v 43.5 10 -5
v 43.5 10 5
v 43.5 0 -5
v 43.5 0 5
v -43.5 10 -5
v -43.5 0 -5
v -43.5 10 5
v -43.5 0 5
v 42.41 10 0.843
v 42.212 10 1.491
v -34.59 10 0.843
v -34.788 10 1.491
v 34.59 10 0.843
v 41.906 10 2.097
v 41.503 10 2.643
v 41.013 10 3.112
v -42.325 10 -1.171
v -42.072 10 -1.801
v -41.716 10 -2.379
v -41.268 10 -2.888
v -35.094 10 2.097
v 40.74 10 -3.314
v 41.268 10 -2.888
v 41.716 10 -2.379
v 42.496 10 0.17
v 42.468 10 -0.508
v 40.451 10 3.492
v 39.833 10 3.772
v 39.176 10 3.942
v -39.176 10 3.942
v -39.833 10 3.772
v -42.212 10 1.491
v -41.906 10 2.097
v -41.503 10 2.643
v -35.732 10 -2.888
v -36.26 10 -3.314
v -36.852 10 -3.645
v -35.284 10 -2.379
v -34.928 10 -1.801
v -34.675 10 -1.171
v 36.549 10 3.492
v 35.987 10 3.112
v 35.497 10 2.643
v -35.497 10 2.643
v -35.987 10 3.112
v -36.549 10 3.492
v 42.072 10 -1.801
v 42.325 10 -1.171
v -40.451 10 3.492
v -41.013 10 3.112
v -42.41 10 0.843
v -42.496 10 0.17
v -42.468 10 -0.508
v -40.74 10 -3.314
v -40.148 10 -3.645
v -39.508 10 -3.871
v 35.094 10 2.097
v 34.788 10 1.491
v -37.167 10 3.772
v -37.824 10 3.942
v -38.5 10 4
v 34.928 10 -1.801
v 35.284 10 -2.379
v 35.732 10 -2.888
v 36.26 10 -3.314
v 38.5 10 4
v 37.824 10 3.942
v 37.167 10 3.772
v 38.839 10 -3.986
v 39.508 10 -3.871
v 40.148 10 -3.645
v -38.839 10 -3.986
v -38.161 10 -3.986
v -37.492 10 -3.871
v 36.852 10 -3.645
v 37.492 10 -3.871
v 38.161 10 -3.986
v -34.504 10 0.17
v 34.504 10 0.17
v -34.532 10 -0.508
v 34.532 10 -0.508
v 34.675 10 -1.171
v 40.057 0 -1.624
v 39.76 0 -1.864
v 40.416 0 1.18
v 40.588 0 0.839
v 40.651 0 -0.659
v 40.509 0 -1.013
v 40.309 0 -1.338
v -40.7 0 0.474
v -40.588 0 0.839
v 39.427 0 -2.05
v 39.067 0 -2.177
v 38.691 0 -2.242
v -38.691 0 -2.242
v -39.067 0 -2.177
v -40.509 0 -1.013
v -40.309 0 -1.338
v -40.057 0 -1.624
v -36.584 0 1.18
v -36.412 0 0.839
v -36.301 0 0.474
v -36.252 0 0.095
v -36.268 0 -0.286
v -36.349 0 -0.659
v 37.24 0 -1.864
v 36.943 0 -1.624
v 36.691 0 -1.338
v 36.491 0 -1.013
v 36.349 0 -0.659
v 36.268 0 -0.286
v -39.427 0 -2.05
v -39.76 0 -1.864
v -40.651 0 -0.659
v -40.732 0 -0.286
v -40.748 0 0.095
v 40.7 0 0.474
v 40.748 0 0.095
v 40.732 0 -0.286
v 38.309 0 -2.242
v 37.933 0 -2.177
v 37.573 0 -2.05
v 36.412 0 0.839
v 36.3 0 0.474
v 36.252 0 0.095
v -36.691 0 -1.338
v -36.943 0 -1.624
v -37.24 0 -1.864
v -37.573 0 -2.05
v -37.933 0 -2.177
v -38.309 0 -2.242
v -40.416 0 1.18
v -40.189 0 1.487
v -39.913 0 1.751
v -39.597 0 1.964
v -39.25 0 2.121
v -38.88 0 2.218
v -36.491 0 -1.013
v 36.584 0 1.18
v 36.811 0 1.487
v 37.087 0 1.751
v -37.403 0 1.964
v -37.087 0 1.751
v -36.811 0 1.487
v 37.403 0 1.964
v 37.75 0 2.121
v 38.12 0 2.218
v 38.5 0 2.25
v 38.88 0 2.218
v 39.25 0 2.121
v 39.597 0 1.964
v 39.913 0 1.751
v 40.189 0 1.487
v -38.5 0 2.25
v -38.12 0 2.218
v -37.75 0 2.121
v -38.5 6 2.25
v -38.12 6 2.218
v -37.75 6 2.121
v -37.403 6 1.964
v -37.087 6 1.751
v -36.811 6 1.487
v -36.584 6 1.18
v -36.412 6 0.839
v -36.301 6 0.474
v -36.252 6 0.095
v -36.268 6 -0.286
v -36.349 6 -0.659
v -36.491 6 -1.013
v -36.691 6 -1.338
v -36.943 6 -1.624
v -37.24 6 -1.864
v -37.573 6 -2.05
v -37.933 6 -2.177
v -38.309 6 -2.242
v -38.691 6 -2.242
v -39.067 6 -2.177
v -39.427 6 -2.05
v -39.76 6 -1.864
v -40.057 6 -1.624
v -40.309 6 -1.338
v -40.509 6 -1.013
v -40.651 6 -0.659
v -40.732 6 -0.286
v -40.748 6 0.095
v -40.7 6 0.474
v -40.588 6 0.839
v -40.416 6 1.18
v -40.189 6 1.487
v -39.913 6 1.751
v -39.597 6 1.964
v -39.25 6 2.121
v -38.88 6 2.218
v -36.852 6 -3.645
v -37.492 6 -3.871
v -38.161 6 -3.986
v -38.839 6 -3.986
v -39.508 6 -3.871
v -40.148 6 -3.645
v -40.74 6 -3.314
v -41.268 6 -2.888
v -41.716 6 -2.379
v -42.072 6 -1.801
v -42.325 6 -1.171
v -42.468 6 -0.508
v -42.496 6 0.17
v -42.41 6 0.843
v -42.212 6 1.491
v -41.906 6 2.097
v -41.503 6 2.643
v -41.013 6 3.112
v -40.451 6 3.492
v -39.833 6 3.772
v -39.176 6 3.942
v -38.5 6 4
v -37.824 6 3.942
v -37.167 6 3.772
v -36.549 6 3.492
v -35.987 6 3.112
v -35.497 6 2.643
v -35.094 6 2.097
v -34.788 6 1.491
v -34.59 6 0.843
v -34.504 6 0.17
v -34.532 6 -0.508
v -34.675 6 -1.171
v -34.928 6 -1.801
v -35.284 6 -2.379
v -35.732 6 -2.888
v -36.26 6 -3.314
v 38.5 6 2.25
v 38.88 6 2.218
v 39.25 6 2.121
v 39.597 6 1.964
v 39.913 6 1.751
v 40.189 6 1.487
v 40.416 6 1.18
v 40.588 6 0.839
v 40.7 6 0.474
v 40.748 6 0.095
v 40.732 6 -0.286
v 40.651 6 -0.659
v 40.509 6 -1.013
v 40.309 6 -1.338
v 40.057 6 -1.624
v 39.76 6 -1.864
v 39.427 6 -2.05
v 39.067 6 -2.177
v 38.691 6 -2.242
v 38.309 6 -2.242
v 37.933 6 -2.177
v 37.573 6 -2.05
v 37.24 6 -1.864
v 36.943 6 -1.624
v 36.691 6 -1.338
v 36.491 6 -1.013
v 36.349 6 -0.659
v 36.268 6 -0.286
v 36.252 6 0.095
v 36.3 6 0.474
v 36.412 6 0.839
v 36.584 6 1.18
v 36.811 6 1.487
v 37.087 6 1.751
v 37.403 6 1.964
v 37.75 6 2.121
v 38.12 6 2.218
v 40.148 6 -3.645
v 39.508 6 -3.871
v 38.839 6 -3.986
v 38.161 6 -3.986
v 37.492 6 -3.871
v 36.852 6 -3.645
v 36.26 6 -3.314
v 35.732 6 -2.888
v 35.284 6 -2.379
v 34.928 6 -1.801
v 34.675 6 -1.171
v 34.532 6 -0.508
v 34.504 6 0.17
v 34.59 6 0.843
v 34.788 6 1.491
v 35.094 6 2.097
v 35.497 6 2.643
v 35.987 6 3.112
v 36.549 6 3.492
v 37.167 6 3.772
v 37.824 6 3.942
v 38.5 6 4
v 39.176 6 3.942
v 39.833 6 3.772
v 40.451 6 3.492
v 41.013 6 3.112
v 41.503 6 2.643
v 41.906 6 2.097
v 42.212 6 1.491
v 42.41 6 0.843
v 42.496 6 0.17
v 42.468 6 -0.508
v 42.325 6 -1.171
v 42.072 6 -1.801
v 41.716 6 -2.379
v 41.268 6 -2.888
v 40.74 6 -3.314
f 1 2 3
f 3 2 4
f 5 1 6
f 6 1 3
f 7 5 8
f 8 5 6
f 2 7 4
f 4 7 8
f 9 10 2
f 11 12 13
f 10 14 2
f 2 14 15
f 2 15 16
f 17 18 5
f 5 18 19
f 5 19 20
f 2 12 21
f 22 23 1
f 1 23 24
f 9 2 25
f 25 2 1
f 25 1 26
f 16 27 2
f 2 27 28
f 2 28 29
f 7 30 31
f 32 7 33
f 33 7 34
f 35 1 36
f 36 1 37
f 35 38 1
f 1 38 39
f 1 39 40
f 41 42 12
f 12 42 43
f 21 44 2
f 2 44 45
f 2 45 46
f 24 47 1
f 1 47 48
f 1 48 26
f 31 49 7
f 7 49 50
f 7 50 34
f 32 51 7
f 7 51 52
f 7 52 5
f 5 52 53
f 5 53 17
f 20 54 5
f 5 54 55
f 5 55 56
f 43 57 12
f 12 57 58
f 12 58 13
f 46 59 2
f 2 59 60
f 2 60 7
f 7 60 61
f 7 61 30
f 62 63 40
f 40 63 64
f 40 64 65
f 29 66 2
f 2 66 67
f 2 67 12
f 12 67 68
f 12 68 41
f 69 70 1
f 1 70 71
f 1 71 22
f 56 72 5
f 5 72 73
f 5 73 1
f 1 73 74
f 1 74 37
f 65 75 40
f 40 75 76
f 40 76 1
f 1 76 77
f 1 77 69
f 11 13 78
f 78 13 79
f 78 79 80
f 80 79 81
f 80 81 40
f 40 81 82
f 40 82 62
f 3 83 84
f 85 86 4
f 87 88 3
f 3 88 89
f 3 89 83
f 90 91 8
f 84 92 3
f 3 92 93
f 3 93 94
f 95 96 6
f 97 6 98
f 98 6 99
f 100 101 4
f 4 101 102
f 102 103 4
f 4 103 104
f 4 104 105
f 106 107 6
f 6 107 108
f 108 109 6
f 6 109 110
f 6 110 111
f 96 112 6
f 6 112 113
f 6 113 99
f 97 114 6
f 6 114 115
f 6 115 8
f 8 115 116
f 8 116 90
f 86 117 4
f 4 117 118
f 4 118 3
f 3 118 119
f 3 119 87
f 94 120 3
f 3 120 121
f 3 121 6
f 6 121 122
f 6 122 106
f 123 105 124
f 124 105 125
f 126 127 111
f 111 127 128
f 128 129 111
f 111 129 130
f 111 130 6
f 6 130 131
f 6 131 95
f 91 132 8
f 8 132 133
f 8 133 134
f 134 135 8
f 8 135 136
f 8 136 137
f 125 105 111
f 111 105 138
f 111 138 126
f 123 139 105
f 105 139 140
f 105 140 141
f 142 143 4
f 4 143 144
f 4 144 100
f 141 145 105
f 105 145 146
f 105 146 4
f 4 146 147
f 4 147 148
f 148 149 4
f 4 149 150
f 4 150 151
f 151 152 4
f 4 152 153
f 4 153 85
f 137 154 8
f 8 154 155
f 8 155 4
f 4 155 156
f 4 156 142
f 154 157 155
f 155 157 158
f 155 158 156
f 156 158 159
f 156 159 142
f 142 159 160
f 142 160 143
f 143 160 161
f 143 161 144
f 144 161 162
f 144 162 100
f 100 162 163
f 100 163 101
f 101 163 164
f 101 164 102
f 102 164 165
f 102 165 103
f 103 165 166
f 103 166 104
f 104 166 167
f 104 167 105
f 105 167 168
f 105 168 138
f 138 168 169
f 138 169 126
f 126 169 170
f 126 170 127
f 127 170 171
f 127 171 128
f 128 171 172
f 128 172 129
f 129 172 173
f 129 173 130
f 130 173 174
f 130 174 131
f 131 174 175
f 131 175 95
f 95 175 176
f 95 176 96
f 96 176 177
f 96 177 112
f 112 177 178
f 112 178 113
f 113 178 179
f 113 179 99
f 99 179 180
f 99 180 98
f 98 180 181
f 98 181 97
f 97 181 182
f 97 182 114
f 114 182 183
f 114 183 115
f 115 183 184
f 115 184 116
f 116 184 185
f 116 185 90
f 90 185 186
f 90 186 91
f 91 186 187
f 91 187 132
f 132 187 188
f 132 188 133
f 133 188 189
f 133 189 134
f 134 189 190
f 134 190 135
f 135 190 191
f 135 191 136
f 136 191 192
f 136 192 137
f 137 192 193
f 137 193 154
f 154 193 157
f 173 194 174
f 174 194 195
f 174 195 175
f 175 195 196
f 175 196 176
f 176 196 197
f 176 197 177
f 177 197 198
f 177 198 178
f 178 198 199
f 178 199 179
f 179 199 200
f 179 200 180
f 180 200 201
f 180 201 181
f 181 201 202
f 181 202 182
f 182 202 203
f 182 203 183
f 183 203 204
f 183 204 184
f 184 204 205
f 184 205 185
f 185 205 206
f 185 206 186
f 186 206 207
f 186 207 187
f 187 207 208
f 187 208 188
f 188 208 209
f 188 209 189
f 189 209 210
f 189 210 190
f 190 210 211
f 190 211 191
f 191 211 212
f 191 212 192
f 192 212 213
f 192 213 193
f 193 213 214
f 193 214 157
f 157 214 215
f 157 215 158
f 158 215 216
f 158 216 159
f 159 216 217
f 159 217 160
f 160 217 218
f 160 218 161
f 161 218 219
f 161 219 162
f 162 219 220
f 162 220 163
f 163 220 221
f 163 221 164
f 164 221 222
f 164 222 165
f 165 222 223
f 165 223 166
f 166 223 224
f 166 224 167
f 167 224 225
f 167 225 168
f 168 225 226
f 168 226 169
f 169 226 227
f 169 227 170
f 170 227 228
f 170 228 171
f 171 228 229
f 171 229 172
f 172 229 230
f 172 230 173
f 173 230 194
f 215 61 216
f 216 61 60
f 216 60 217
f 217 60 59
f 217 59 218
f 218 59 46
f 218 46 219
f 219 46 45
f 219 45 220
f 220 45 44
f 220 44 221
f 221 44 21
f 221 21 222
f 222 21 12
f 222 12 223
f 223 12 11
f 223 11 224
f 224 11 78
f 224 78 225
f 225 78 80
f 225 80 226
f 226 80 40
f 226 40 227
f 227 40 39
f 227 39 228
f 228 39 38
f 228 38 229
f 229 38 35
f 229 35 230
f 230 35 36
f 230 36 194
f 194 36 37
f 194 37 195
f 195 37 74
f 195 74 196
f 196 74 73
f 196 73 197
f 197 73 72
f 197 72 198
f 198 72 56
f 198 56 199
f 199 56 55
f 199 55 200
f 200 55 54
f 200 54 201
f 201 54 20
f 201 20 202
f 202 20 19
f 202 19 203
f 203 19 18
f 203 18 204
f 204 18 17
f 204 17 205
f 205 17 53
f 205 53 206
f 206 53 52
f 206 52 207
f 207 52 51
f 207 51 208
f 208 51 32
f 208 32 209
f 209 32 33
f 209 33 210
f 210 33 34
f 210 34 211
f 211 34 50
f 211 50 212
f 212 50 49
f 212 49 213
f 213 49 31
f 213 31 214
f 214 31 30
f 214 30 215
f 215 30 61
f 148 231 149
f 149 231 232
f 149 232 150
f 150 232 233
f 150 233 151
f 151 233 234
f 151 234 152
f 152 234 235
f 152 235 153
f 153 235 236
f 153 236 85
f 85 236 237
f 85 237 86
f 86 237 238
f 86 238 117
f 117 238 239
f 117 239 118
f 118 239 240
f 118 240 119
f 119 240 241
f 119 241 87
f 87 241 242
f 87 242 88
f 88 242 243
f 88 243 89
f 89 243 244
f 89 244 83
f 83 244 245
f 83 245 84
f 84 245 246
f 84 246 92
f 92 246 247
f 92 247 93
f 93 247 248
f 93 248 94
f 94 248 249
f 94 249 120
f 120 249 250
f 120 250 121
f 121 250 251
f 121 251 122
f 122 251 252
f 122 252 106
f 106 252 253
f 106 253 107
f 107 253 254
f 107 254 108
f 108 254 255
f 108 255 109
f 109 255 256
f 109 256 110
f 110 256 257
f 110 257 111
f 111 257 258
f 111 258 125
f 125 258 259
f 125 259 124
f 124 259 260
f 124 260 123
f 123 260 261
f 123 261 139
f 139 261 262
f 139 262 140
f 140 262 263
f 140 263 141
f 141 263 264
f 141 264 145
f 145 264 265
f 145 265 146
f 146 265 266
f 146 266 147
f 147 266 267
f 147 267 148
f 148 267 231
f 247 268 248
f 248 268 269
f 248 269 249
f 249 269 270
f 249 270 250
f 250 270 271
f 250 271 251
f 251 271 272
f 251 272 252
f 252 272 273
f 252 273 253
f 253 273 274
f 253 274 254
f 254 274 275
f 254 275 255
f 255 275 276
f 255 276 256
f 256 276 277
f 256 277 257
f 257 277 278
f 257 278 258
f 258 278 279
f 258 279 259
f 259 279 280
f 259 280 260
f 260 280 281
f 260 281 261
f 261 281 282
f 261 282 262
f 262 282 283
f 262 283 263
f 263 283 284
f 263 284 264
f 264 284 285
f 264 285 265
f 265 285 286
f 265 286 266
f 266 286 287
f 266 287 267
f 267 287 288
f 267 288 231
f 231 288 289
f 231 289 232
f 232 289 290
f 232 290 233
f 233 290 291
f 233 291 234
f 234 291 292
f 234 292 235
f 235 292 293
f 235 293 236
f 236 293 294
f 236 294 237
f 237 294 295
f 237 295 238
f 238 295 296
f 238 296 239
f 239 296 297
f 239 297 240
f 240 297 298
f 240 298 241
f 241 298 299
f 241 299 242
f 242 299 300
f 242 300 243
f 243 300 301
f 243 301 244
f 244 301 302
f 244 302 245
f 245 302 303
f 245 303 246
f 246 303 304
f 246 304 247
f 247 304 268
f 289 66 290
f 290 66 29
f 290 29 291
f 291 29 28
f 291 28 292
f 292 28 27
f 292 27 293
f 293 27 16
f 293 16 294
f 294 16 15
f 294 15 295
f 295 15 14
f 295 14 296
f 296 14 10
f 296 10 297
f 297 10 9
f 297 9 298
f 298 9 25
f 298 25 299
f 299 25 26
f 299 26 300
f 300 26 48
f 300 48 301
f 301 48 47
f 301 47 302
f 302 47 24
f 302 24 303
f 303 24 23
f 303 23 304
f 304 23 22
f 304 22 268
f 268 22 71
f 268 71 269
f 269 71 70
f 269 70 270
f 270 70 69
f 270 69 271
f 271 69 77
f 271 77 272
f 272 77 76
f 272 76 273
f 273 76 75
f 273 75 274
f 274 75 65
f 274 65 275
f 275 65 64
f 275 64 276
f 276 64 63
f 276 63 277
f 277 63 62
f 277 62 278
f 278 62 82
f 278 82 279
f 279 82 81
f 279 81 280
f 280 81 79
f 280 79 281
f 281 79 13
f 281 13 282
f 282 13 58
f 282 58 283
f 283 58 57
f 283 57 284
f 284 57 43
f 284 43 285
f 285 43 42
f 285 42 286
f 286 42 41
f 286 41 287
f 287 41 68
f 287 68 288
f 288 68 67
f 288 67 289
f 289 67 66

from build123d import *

# Parameters (mm, degrees)
SKETCH1_W                      = 87
SKETCH1_H                      = 10
BOSS_EXTRUDE1_DEPTH            = 10
CBORE_FOR_M4_SHCS2_D           = 4.5
CBORE_FOR_M4_SHCS2_CBORE_D     = 8
CBORE_FOR_M4_SHCS2_CBORE_DEPTH = 4


with BuildPart() as part:
    # Sketch1 → Boss-Extrude1 (new body)
    with BuildSketch(Plane(origin=(0, 0, 0), x_dir=(1, 0, 0), z_dir=(0, 1, 0))):
        Rectangle(SKETCH1_W, SKETCH1_H)
    extrude(amount=BOSS_EXTRUDE1_DEPTH)

    # CBORE for M4 SHCS2 (through all)
    with Locations(Plane(origin=(0, 10, 0), x_dir=(1, 0, 0), z_dir=(0, 1, 0))):
        with Locations((-38.5, 0)):
            cbore_for_m4_shcs2 = CounterBoreHole(CBORE_FOR_M4_SHCS2_D / 2, CBORE_FOR_M4_SHCS2_CBORE_D / 2, CBORE_FOR_M4_SHCS2_CBORE_DEPTH)

    # Mirror3: CBORE for M4 SHCS2 across plane
    add(cbore_for_m4_shcs2.mirror(Plane(origin=(0, 0, 0), x_dir=(0, 0, 1), z_dir=(1, 0, 0))), mode=Mode.SUBTRACT)


solid = part.part
